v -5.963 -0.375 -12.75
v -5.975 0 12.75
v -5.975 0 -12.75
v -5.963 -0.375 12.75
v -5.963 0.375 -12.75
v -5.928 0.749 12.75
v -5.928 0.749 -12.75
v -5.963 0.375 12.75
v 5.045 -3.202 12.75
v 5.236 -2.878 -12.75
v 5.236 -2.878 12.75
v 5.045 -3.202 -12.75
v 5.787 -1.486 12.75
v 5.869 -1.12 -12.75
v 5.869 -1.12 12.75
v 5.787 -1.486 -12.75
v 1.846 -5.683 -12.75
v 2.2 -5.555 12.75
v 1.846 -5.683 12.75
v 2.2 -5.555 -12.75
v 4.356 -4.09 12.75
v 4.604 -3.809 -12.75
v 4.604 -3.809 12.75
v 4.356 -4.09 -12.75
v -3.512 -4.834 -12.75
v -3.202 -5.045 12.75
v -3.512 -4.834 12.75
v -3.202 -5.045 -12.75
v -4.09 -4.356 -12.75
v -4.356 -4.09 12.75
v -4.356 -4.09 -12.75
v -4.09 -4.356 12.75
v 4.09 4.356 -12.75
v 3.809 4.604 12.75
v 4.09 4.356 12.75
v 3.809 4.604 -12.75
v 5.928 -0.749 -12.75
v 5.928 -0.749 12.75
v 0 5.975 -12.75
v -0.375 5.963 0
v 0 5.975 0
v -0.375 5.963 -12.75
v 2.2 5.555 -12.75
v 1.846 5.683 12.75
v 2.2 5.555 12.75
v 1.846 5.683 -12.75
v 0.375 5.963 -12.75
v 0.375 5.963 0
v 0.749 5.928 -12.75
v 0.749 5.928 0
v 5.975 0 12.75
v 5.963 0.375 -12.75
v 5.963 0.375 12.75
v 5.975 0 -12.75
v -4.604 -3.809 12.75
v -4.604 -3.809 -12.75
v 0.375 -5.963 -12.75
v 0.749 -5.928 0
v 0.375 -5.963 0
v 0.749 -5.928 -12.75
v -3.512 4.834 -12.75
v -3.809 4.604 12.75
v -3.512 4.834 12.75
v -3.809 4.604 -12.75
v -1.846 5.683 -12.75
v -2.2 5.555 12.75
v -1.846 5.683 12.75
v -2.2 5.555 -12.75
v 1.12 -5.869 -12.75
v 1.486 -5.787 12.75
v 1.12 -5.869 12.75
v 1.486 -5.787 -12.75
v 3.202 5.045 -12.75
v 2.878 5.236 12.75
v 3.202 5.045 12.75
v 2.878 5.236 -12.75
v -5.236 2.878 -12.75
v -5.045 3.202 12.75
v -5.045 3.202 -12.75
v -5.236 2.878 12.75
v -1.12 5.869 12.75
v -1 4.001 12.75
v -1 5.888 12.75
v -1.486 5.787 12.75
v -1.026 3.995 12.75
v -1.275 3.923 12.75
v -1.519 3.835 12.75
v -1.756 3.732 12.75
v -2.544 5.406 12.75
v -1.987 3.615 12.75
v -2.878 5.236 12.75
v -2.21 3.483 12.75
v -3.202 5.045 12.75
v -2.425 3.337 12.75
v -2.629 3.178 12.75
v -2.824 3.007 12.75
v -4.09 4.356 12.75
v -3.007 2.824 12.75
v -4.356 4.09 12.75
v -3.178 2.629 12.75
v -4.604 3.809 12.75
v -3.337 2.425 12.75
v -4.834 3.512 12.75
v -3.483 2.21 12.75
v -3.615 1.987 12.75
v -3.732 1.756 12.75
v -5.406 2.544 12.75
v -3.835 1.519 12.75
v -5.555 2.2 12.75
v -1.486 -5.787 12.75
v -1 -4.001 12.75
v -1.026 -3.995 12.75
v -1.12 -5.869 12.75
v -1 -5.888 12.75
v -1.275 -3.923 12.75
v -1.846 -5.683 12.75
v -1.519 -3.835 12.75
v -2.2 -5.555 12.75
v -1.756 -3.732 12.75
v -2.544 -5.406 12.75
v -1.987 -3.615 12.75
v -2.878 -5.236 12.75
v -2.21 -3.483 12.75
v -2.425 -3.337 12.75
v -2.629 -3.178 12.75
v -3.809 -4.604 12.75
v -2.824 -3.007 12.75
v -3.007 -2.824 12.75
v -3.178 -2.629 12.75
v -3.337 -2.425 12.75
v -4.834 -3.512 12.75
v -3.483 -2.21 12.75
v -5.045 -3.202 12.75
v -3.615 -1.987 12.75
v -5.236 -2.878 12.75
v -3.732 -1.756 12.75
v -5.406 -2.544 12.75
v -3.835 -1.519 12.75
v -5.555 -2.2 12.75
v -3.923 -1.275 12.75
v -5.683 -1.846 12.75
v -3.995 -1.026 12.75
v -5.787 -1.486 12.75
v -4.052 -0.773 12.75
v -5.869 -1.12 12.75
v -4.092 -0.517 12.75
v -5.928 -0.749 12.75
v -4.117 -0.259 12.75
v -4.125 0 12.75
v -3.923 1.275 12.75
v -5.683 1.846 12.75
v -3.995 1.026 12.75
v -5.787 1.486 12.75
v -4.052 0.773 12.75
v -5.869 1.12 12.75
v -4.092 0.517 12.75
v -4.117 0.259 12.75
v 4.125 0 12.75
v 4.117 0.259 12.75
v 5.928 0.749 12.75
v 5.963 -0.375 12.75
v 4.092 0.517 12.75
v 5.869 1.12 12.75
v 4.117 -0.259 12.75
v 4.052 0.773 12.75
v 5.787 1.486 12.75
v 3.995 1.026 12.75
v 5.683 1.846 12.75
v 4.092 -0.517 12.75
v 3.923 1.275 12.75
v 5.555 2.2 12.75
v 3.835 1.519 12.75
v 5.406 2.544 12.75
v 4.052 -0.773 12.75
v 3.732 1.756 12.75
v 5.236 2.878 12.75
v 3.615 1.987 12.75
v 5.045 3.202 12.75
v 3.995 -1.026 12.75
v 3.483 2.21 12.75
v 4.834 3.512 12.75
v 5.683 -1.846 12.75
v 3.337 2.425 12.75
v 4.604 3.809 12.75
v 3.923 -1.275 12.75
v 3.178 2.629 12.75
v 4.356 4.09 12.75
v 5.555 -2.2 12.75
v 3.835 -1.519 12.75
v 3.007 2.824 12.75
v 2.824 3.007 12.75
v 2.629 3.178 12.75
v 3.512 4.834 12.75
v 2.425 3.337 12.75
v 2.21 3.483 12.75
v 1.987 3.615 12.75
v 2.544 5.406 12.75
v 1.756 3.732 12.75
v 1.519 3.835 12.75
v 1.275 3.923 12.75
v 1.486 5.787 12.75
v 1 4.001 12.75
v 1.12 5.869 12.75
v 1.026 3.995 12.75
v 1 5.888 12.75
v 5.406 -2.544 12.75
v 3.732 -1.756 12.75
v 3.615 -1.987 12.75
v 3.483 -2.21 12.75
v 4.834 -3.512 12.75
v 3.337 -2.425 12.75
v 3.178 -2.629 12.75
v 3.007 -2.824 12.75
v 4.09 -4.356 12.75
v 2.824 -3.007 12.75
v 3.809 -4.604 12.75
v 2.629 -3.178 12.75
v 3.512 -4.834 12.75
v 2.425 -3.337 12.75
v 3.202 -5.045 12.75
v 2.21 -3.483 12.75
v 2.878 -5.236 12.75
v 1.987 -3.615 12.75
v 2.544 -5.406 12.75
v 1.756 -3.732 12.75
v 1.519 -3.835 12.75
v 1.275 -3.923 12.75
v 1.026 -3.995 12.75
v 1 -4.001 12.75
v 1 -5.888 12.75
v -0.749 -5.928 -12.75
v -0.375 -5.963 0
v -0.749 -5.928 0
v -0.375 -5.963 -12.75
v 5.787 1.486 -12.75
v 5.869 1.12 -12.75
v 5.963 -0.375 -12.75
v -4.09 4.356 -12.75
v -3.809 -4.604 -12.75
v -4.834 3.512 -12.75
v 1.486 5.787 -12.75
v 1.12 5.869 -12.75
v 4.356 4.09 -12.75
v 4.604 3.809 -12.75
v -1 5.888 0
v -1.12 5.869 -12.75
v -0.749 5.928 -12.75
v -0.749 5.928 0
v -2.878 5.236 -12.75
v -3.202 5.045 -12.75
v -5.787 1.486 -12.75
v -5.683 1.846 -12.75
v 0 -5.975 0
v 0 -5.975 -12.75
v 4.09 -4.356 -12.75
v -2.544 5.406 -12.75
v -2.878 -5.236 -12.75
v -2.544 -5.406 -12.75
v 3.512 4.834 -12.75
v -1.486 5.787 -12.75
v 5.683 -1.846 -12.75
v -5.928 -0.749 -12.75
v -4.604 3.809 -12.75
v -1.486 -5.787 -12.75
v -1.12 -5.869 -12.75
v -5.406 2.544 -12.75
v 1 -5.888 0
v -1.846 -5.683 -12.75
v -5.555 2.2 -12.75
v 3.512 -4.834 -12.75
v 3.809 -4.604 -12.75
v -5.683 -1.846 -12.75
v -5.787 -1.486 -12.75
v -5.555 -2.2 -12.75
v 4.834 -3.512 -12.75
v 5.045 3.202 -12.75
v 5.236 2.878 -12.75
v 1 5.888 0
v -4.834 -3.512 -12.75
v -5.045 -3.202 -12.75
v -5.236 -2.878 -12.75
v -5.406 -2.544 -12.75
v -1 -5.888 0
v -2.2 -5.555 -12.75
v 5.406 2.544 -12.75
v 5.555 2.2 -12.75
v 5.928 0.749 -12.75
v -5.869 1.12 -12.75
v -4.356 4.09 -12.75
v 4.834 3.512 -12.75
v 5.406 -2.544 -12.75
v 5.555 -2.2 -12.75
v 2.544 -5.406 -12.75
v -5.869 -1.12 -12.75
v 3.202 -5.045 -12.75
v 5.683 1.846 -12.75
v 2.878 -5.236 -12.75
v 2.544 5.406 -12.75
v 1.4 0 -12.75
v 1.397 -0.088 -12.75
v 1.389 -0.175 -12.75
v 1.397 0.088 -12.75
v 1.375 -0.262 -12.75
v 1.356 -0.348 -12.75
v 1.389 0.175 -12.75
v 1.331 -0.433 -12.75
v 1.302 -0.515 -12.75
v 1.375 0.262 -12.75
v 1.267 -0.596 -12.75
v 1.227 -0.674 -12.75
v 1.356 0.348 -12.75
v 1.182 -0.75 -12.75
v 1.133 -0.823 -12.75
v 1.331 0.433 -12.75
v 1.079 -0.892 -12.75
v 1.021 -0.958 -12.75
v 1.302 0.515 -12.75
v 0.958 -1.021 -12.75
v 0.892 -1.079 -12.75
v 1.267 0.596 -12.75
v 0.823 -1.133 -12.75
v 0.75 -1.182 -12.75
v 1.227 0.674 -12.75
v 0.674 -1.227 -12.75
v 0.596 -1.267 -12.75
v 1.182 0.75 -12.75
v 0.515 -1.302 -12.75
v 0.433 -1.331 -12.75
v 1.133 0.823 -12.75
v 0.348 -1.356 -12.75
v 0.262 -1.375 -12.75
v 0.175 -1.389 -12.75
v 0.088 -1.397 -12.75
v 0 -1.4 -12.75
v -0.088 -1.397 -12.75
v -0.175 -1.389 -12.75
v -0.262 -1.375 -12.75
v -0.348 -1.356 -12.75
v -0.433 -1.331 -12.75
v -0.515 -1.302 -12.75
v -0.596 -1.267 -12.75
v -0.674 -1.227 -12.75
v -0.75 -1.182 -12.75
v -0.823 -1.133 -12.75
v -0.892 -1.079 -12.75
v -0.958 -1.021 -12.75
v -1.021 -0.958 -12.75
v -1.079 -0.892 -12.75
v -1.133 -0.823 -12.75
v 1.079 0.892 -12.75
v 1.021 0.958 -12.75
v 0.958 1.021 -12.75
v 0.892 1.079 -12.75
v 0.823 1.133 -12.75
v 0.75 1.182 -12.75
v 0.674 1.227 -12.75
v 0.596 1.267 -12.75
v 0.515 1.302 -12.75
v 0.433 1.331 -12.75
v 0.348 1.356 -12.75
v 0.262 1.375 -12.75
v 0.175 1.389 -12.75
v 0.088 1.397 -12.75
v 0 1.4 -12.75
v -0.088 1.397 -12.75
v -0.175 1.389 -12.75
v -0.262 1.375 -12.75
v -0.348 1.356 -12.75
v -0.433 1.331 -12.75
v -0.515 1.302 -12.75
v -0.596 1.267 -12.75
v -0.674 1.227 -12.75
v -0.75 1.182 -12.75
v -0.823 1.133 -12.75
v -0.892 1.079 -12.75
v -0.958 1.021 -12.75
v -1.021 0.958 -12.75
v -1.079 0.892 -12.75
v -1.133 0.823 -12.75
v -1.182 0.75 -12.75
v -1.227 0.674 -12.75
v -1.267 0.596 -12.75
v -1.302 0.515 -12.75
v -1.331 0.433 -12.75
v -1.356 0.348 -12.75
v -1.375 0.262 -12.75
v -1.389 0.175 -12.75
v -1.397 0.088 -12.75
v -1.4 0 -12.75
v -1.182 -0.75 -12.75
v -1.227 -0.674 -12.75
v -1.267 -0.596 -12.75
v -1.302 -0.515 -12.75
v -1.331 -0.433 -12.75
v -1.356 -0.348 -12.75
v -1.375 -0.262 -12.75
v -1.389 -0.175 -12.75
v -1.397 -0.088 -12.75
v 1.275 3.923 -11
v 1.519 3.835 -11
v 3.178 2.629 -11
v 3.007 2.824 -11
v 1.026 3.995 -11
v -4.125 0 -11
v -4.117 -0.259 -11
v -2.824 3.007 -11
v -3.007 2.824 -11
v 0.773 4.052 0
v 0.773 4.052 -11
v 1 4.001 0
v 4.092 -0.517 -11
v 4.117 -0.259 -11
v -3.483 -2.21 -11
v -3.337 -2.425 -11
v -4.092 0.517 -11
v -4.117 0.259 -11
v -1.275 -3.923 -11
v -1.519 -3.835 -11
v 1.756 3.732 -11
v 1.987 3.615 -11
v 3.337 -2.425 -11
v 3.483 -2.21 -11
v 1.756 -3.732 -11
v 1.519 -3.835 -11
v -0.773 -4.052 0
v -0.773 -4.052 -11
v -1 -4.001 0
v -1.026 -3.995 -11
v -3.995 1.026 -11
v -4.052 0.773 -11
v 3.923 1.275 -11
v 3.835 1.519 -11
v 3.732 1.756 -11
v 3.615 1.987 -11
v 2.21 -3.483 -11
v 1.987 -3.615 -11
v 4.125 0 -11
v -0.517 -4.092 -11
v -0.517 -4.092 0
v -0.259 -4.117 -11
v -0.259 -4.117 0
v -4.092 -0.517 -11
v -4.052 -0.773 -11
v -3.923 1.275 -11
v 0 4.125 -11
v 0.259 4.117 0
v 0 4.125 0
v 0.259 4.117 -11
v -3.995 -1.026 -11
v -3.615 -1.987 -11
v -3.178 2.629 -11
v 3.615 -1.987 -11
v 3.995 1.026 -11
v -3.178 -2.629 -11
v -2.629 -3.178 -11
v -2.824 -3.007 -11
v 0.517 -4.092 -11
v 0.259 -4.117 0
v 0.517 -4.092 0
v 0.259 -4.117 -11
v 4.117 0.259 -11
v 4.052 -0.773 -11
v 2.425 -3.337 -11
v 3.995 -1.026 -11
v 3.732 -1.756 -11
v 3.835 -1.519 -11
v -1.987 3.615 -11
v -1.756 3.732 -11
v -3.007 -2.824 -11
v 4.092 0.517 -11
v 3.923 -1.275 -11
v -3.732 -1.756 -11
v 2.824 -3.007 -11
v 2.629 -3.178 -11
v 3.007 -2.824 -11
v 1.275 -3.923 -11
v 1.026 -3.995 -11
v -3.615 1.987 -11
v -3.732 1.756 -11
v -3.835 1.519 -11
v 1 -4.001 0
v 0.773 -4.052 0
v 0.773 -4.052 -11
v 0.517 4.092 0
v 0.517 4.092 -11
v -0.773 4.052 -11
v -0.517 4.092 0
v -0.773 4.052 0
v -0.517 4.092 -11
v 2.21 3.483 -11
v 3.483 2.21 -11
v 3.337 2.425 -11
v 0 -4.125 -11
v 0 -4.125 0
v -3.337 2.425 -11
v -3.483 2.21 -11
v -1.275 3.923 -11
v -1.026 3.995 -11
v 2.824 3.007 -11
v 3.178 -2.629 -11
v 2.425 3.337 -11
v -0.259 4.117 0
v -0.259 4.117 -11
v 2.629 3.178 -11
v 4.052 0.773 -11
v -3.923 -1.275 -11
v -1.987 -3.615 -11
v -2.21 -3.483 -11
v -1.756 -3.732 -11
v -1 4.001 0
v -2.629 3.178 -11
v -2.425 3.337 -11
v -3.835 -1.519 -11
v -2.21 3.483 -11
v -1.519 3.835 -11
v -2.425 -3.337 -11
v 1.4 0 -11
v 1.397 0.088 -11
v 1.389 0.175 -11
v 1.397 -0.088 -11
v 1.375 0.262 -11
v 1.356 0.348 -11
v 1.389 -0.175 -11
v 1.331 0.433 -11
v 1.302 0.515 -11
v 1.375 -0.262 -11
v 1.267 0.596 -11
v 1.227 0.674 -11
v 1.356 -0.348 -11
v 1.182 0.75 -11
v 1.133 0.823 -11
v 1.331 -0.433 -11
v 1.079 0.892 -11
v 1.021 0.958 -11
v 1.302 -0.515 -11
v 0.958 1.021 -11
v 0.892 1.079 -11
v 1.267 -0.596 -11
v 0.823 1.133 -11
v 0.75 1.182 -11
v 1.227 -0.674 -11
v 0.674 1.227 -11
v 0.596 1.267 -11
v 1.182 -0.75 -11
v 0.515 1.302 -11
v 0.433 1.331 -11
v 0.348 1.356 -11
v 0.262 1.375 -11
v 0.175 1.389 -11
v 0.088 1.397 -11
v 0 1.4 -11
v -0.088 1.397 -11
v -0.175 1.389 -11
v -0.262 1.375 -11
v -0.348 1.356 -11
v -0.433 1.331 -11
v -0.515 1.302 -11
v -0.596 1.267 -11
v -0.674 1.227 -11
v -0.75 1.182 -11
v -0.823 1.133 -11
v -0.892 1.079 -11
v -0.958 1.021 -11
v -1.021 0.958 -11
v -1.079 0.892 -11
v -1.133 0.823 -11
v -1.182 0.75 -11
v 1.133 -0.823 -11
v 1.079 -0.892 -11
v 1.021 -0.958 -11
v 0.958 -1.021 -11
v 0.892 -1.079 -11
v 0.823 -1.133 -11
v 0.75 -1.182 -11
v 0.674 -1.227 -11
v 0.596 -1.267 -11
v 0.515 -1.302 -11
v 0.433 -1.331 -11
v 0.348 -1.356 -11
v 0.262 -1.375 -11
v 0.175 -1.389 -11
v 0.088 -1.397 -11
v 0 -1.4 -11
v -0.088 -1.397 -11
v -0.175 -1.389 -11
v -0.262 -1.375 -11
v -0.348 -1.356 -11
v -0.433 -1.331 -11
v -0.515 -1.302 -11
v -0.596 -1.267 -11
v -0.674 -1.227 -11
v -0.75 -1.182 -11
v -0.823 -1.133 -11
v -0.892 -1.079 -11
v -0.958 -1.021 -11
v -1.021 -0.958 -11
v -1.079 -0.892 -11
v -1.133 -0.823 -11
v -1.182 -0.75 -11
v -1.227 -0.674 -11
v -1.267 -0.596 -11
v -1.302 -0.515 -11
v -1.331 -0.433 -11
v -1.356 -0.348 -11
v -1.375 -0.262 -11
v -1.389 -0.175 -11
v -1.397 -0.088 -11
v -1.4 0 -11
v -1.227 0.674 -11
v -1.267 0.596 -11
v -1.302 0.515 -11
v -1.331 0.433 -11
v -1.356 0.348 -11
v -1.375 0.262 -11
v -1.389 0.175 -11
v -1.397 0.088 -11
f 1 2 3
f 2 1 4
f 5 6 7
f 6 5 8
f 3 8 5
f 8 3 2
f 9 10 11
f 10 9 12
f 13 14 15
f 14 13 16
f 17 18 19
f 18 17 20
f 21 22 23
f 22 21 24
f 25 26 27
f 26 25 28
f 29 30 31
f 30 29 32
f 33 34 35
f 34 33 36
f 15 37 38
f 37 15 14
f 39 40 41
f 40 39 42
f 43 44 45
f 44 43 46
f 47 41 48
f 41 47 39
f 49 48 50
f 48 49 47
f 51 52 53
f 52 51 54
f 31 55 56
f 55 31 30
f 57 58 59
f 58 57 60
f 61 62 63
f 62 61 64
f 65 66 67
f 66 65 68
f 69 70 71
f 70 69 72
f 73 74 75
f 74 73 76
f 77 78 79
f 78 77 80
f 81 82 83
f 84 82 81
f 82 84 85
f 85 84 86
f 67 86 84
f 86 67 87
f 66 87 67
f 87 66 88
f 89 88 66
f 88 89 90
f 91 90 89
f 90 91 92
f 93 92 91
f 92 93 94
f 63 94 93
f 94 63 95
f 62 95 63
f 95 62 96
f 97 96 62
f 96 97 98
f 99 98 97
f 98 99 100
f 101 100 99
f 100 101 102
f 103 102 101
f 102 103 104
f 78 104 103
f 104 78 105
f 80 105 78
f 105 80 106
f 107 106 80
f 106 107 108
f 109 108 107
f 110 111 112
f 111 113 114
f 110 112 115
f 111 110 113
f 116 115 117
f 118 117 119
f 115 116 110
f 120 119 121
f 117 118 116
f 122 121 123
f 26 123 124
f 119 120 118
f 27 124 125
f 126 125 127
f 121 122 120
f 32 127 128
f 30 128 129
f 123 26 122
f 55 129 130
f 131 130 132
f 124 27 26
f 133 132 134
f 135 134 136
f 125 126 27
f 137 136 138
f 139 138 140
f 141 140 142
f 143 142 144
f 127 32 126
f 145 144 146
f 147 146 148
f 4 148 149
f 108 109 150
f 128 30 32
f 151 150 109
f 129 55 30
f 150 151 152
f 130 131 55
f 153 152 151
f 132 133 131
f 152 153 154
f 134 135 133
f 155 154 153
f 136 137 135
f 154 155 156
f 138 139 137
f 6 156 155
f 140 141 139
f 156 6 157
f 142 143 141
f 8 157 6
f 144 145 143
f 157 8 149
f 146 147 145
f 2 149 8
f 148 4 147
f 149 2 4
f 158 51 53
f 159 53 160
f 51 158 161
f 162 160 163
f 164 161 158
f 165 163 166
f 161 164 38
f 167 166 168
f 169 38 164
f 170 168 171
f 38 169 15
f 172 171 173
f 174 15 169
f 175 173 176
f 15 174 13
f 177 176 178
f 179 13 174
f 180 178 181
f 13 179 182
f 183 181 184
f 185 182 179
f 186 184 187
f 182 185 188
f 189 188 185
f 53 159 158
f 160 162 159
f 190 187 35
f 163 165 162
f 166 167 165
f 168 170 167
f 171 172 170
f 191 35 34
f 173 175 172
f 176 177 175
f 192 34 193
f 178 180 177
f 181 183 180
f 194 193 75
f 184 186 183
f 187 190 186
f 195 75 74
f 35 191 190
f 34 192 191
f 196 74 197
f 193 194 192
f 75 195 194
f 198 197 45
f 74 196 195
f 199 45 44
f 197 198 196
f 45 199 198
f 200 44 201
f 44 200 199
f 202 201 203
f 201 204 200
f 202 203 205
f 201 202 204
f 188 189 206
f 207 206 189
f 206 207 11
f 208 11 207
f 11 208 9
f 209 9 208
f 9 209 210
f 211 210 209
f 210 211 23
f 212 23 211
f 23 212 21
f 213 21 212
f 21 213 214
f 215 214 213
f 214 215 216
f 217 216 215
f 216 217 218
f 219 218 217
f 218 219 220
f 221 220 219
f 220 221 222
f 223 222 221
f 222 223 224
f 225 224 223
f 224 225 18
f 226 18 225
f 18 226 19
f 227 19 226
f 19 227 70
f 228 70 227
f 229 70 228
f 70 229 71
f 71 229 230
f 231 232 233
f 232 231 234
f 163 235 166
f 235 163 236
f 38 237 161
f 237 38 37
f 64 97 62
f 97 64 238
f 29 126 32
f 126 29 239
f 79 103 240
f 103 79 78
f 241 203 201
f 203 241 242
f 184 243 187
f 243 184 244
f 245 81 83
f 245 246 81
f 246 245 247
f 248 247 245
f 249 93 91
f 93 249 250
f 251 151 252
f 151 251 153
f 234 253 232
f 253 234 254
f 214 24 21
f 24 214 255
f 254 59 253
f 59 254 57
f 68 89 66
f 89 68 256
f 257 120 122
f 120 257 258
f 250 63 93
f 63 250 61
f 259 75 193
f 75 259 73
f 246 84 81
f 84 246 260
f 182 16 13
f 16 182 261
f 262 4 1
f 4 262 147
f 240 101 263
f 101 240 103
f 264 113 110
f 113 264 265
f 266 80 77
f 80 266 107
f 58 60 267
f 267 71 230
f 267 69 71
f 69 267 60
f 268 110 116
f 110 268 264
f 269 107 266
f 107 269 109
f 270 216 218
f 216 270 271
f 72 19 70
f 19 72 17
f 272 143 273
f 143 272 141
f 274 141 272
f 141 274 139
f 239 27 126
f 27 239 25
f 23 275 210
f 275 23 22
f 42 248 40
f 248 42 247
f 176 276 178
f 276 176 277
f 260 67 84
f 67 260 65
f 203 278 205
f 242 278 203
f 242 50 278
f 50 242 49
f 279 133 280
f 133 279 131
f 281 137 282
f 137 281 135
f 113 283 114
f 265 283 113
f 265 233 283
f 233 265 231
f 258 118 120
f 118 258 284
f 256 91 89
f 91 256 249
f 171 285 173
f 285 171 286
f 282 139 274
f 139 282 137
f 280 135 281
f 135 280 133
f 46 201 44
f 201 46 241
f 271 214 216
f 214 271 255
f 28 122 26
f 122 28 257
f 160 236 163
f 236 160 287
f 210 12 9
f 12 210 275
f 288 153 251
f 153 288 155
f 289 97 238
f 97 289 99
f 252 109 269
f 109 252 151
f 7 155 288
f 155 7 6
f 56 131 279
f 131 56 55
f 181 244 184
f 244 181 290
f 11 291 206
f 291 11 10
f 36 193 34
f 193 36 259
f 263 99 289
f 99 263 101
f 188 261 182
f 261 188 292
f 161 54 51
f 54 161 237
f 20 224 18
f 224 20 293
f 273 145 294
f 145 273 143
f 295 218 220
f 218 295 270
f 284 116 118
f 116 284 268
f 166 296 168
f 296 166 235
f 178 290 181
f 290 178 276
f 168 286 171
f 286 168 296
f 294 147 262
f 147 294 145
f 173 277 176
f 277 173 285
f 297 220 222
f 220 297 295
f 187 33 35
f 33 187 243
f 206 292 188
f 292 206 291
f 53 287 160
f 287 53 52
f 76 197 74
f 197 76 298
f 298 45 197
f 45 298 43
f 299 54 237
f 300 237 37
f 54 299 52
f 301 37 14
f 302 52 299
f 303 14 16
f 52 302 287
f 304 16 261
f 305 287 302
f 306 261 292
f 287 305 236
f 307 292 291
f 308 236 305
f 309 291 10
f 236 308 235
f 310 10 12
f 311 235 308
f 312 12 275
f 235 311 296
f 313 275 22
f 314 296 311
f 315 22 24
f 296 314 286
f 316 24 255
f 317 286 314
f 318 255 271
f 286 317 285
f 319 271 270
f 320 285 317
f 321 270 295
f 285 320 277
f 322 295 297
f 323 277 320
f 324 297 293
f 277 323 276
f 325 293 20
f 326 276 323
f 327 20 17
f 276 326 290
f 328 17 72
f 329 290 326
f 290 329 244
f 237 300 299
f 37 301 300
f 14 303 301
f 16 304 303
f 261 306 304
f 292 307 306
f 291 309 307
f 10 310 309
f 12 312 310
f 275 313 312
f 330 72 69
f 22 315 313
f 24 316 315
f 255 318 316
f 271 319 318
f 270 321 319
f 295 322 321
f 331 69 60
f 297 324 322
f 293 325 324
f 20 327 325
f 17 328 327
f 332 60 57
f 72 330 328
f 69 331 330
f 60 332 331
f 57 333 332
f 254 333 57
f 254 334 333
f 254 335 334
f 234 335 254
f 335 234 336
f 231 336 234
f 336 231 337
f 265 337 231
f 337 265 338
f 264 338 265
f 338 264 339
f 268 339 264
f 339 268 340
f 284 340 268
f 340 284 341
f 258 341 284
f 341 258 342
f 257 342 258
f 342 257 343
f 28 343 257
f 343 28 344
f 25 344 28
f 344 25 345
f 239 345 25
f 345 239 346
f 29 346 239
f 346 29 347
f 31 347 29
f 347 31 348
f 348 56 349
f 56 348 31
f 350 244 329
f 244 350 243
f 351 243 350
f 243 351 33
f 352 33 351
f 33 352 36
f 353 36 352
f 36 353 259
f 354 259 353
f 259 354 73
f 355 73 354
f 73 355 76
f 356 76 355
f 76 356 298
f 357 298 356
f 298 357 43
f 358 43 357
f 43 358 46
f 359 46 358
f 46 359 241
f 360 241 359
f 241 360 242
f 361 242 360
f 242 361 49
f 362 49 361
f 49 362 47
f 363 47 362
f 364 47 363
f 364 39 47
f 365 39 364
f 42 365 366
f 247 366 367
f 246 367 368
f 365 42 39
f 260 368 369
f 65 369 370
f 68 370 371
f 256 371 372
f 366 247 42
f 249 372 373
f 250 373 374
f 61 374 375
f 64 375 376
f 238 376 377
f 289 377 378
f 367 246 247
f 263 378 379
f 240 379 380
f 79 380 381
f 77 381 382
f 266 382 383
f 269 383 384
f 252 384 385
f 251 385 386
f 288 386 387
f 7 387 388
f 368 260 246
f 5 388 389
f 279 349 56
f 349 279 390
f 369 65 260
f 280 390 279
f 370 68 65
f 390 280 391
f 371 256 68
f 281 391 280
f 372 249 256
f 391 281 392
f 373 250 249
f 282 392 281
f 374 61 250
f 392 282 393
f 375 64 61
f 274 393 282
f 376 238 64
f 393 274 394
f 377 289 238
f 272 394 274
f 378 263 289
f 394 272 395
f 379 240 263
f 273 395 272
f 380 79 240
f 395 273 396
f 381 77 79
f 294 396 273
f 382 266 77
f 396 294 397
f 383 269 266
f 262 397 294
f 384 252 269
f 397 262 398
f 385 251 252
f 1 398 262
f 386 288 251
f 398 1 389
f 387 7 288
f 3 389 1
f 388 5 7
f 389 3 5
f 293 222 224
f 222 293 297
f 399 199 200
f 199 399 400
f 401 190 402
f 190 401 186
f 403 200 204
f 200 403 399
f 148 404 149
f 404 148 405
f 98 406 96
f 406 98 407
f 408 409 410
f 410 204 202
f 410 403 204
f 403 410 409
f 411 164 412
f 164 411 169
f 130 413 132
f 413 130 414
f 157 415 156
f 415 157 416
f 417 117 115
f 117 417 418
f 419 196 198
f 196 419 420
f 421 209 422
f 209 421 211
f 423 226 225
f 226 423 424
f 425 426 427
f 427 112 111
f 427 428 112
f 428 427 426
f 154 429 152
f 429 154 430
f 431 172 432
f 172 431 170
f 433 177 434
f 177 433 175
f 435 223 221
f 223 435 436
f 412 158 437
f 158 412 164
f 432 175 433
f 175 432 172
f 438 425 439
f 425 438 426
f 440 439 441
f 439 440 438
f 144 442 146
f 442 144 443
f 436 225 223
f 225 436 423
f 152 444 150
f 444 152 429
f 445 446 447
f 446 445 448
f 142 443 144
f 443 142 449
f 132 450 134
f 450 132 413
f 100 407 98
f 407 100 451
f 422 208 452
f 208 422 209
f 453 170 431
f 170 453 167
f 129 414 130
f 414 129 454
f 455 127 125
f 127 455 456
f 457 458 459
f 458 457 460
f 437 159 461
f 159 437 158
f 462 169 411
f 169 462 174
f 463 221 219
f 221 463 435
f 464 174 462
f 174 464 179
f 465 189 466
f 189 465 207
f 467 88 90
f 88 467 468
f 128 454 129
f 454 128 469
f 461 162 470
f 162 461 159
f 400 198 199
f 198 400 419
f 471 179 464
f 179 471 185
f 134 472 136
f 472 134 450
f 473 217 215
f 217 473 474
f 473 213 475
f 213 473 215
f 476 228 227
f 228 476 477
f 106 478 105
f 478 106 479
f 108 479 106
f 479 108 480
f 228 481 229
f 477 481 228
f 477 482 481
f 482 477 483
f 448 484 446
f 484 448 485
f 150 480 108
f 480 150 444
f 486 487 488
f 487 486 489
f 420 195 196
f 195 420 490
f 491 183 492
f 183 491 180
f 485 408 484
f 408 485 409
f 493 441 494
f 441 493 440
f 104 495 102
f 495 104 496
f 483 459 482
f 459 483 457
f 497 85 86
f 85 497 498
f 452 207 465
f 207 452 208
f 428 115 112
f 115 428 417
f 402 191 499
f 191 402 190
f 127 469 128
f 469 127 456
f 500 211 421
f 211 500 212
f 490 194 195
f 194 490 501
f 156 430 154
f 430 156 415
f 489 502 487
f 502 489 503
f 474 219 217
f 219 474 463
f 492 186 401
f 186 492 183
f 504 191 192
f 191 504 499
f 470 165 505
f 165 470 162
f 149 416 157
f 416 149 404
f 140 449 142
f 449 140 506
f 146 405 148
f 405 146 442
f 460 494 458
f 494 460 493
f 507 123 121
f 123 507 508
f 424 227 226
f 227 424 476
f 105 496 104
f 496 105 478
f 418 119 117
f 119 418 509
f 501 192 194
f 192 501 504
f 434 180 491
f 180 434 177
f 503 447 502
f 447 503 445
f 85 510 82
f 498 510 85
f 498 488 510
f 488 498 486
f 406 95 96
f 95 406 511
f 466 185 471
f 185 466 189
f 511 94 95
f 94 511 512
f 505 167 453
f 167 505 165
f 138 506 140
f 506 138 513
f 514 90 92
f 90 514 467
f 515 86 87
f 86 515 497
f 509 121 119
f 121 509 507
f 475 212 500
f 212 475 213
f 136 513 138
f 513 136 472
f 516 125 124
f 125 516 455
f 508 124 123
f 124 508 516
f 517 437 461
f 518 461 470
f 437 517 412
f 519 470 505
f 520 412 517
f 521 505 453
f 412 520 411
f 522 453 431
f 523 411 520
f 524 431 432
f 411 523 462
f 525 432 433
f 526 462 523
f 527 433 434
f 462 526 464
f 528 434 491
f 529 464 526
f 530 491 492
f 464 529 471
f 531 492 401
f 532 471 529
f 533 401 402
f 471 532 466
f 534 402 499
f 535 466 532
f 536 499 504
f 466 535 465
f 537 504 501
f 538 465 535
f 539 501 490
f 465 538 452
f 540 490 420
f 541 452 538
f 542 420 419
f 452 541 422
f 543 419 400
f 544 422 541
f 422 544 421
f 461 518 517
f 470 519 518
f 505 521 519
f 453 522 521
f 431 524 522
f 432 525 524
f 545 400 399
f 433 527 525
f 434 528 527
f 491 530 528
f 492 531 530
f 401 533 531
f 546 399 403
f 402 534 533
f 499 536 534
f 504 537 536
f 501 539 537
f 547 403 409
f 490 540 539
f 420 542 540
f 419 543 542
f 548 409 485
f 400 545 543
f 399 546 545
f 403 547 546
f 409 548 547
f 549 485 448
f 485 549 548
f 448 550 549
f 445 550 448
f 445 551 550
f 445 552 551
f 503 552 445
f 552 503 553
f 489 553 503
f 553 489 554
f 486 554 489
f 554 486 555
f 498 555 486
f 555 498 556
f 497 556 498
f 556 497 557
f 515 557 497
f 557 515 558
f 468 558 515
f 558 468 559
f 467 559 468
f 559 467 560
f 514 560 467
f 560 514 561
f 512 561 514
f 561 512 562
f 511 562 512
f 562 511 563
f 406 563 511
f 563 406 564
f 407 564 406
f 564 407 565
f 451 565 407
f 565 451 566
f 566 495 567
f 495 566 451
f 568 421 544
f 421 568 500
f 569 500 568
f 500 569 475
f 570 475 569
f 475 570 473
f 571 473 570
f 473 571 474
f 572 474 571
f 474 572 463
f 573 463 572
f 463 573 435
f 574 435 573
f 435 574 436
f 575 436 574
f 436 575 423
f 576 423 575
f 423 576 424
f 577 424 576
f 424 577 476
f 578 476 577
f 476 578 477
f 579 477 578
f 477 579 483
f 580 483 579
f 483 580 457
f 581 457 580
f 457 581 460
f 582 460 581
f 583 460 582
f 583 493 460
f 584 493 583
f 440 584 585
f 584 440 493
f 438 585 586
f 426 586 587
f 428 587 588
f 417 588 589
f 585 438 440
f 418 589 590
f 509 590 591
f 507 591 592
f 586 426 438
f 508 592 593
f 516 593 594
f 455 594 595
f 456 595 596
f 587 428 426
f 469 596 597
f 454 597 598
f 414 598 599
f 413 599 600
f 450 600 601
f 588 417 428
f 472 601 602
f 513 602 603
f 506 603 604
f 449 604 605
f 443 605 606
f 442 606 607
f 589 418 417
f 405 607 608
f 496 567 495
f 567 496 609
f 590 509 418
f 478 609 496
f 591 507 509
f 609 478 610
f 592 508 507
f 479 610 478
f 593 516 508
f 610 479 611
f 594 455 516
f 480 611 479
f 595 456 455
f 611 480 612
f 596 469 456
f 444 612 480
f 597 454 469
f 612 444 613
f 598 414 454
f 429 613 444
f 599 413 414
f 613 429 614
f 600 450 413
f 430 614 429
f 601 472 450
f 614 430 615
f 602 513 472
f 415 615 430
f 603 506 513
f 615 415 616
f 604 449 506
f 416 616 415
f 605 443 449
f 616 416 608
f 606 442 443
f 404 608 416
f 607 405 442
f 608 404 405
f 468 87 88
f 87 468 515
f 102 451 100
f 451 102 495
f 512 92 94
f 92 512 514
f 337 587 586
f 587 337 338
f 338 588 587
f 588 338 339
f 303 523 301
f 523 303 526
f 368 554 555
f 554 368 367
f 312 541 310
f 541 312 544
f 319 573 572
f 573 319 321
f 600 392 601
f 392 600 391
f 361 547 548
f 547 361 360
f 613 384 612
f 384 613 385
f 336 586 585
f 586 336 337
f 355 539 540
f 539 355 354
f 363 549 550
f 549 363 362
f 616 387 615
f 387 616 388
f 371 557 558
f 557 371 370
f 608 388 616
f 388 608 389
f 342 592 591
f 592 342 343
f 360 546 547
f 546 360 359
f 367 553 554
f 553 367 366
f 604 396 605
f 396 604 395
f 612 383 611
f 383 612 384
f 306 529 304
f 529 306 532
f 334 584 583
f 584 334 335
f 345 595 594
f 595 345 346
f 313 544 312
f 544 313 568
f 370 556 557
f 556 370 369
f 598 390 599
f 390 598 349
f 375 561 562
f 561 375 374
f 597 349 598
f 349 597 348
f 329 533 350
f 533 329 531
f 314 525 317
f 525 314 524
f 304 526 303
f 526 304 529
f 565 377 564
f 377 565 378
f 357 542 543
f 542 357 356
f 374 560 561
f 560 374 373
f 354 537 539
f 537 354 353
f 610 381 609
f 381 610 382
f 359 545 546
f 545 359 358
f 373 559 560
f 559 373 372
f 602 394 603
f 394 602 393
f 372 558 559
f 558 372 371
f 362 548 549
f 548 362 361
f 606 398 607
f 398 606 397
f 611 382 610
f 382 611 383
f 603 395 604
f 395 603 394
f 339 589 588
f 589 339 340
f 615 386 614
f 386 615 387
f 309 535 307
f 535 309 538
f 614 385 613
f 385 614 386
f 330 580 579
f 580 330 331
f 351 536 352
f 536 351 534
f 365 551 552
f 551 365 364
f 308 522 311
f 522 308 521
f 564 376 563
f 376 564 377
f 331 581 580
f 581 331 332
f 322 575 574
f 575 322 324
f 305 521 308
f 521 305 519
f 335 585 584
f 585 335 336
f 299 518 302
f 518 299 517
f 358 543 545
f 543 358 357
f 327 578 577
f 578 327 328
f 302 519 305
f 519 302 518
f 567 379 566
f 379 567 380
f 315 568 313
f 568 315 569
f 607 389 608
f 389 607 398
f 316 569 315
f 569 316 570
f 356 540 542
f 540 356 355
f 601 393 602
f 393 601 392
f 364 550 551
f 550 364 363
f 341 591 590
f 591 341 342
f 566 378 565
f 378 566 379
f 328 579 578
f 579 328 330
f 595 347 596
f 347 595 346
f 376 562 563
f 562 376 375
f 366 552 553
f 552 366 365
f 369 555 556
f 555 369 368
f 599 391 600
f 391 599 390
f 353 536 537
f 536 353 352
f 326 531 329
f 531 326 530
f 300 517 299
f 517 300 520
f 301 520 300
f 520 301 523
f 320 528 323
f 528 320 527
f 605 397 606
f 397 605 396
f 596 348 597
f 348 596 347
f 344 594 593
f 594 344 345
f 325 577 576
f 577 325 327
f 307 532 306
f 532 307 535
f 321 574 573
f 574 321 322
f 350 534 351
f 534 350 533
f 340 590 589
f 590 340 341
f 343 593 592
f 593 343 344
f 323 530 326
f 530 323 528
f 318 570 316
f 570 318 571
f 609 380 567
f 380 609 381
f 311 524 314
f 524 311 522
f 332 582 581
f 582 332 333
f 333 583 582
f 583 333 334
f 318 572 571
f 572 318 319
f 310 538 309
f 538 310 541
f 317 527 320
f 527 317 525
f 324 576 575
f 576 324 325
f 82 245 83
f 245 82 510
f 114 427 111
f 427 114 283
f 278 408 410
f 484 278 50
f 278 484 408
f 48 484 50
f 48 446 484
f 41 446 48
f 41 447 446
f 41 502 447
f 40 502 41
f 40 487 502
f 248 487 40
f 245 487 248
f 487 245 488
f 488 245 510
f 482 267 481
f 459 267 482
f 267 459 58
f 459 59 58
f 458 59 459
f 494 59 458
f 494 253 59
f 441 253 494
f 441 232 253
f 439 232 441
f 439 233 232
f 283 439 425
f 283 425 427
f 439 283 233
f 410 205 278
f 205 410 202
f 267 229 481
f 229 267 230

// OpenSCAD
// file: ../../../shared_helper.scad
// Shared Helper variables and modules

// Variables
quality_value = 100;
$fn = quality_value;

// Screw Holes
m2_hole_diameter = 1.85; // 1.95;
m2_loose_diameter = 2.50;
m2_counter_sink_diameter = 3.80;
m2_counter_sink_length = 2.00;
m2_hole_offset = m2_hole_diameter / 2.0;
m2_hole_height = 100.00;
m2_nut_outer_width = 3.90;
m2_nut_outer_height = 4.40;
m2_nut_outer_depth = 1.50;
// M2_Counter_Sink_Depth

m3_hole_diameter = 2.9; // 2.8
m3_hole_offset = m3_hole_diameter / 2.0;
m3_hole_height = 100.00;
m3_head_diameter = 6.2;
m3_head_depth = 3.0; // 2.5??, 3.0

m4_hole_diameter = 3.85; // 3.90
m4_hole_offset = m4_hole_diameter / 2.0;
m4_hole_height = 100.00;
m4_head_diameter = 7.55;
m4_head_depth = 3.0; // 2.5??, 3.0

// Tolerances
hole_tight_tolerance = 0.05;
hole_loose_tolerance = 0.20;

// Springs
spring_diameter = 5.45;
spring_length = 35.00;

// Nails
brass_nail_diameter = 2.4; // 2.00; // 1.95 at the beginning it tapers
brass_nail_length = 29.54;
brass_nail_head_diameter = 3.20; // 3.00; // oval 2.84 - 3.1 mm
brass_nail_head_depth = 1.80; //1.00; // 1.80; // 2.00;

// General Variables
v_wheel_hole_diameter = 5.20;
v_wheel_offset = (v_wheel_hole_diameter / 2.0) + 2.0;

// Hot-End Holes
stand_off_hole_diameter = m3_hole_diameter;
stand_off_width_distance = 11.60 + stand_off_hole_diameter;

// Magnets
// Small Magnet (Neo)
small_magnet_height = 2.00; // ±2.00 1.97
small_magnet_diameter = 3.00; // ±3.00 // 2.98

// Medium Magnet (Neo)
medium_magnet_height = 2.96; // ±3.00
medium_magnet_diameter = 5.00;

// Large Magnet (ferrite)
large_magnet_height = 2.98; // ±3.00
large_magnet_diameter = 9.79; // ±10.00

// Switches
// D2F Switch
d2f_length = 12.88; // ±12.70
d2f_width = 5.84; // ±5.70
d2f_depth = 6.20; // ±7.00 (5 + 2) ... ±6.50
d2f_pins = 9.00 - 6.50;
d2f_plunger_length = 2.64;
d2f_plunger_width = 0.97; // ±1.00
d2f_plunger_depth = 0.39; // ±0.50
d2f_mount_hole_position = 2.10;
d2f_hole_position_from_centre = 2.85;
d2f_pin_pre_travel = 0.50;
d2f_mount_hole_shift = 4.40 + m2_hole_offset + m2_hole_offset;
d2f_switch_base = 0.2 + 0.7 + 1.50 + 0.55 - 1.0;
d2f_switch_hole_hight = 22.00;
d2f_extra_tolerance_for_switch_holes = 0.12;

// 10t85 Switch
10t85_length = 20.04; // ±19.90
10t85_width = 6.34; // ±6.40
10t85_depth = 10.64; // ±10.70
10t85_plunger_length = 3.28; // ±4.00
10t85_plunger_width = 1.96;
10t85_plunger_depth = 1.30;

// Creality Endstop Board, 2208 V2.0
// creality_endstop_hole_diameter = m3_hole_diameter + hole_loose_tolerance; // Hole is M3 sized but meant for a loose M2
creality_endstop_hole_diameter = m2_hole_diameter + hole_tight_tolerance;
creality_endstop_hole_offset = 15.00;
creality_endstop_board_height = 20.30;
creality_endstop_plug_height_extension = 2.00;
creality_endstop_board_width = 20.20;
creality_endstop_board_thickness = 1.30;
creality_endstop_board_pins_thickness = 3.20 - creality_endstop_board_thickness;
creality_endstop_board_switch_thickness = 8.50 - creality_endstop_board_thickness;
creality_endstop_board_back_space = 2.00; // Taken from the rail mount bracket
creality_endstop_board_back_height = 14.90;
creality_endstop_board_back_width = 16.80;
creality_endstop_back_thickness = 3.30;
creality_endstop_back_hole_wall_spacing = 1.50; //3.00;

// Small Tactile Switch
small_tactile_switch_length = 6.21;
small_tactile_switch_width = 6.17;
small_tactile_switch_depth = 3.18;
small_tactile_switch_plunger_diameter = 3.40;
small_tactile_switch_plunger_depth = 1.40;

// Large Tactile Switch
large_tactile_switch_length = 12.03;
large_tactile_switch_width = 11.95;
large_tactile_switch_depth = 3.12;
large_tactile_switch_plunger_length = 3.75;
large_tactile_switch_plunger_width = 3.70;
large_tactile_switch_plunger_depth = 3.94;

// Button
button_topper_top_diameter = 11.65;
button_topper_bottom_diameter = 12.96;
button_topper_depth = 5.64;
button_topper_bottom_depth = 4.38;

// Belts
// GT2

// Modules
// Creality Mounting Holes
module CrealityCounterSunkHotEndMountingHoles(total_casing_depth, casing_top_extension) {
  // Mounting holes with countersinking - horizontal, through-holes, properly positioned
  cylinder(d=m3_hole_diameter, h=total_casing_depth + 2.00, center=true);
  cylinder(d=m3_hole_diameter, h=total_casing_depth + 2.00, center=true);

  translate([stand_off_width_distance, 0, 0]) {
    cylinder(d=m3_hole_diameter, h=total_casing_depth + 2.00, center=true);
    cylinder(d=m3_head_diameter + hole_loose_tolerance, h=4 + m3_head_depth + 6 + 1.8 + casing_top_extension);
  }
}

module CrealityHotEndMountingHoles(total_casing_depth) {
  cylinder(d=m3_hole_diameter, h=total_casing_depth + 2.00, center=true);

  translate([stand_off_width_distance, 0, 0]) {
    cylinder(d=m3_hole_diameter, h=total_casing_depth + 2.00, center=true);
  }
}

module CrealityEndstopMountHoles(height, include_back_nut_cutout) {
  cylinder(d=creality_endstop_hole_diameter, h=height, center=true);

  translate([creality_endstop_hole_offset, 0, 0]) {
    cylinder(d=creality_endstop_hole_diameter, h=height, center=true);
  }

  if (include_back_nut_cutout) {
    back_depth = m2_nut_outer_depth;

    translate([-2.0, -2.0, 0]) {
      cube([m2_nut_outer_width, m2_nut_outer_height, back_depth]);

      translate([creality_endstop_hole_offset, 0, 0]) {
        cube([m2_nut_outer_width, m2_nut_outer_height, back_depth]);
      }
    }
  }
}

module CrealityEndstopBackSpace(base_cutout_extension) {
  // Smaller gap between screw holes
  translate([creality_endstop_hole_diameter + creality_endstop_back_hole_wall_spacing, 0.0, 0.0]) {
    cube([creality_endstop_board_back_width - 2 * (creality_endstop_hole_diameter + creality_endstop_back_hole_wall_spacing), base_cutout_extension, creality_endstop_back_thickness + 1.0]);
  }

  // Top gap part
  translate([0.0, base_cutout_extension, 0]) {
    cube([creality_endstop_board_back_width, (creality_endstop_board_back_height + base_cutout_extension), creality_endstop_back_thickness + 1.0]);
  }
}

// D2F Switch Mounting
module D2F_Switch_Space() { // Should be used as a negative / difference space
  // D2F Switch Space
  // switch_base = 0.2 + 0.7 + 1.50 + 0.55;
  // switch_base = 0.2 + 0.7 + 1.50 + 0.55 - 1.0;
  switch_base = d2f_switch_base;

  // cube([d2f_depth, d2f_width + 1.05 + 0.75 - 0.95, d2f_length + casing_top_edge_buffer]); // 1.05
  cube([d2f_length, (d2f_width + 2.00) + d2f_pins, d2f_depth]);
}

module D2F_Switch_Mount_Holes() {
  rotate([0, 0, 90]) {
    translate([0.0, d2f_hole_position_from_centre, 0.0]) {
      cylinder(d=m2_hole_diameter + hole_tight_tolerance + (d2f_extra_tolerance_for_switch_holes * 3), h=d2f_switch_hole_hight);
    }

    translate([0.0, -(d2f_hole_position_from_centre + m2_hole_offset), 0.0]) {
      cylinder(d=m2_hole_diameter + hole_tight_tolerance + (d2f_extra_tolerance_for_switch_holes * 3), h=d2f_switch_hole_hight);
    }
  }
}
// main file
// 8mm to 12mm Rod Sleeve Adapter

// This sleeve converts an 8mm linear stainless rod to 12mm mounting holes
// Uses shared_helper.scad for tolerances and quality settings

include <../../../shared_helper.scad>;

revision = 1.6;

// Rod dimensions
inner_rod_diameter = 8.0;
outer_sleeve_diameter = 12.0;
sleeve_length = 25.5; //30.0;  // Adjust as needed // +1.5

// Tolerances
// inner_tolerance = (2 * hole_tight_tolerance) + hole_loose_tolerance;    // Tight perfect fit for the 8mm rod
inner_tolerance = hole_tight_tolerance + hole_loose_tolerance;    // Tight fit for the 8mm rod
outer_tolerance = hole_tight_tolerance;  // Slightly looser fit for the 12mm mounting holes

// Gap parameters for installation
gap_width = 2.0;  // Width of the gap to allow squeezing

// Create the sleeve
rotate([0, 180, 0]) {
  difference() {
    // Outer cylinder
    cylinder(d=outer_sleeve_diameter - outer_tolerance, h=sleeve_length, center=true);

    // Inner hole for 8mm rod
    rotate([0, 0, 180]) {
      translate([0, 0, -sleeve_length + 12.5 - 0.5 -1.0])
      cylinder(d=inner_rod_diameter + inner_tolerance, h=sleeve_length);
    }

    // Small hole to push rod out
    cylinder(d=m3_hole_diameter - 0.1, h=sleeve_length + 1.0, center=true);

    // Gap to allow squeezing for installation
    translate([0, 0, -sleeve_length/2 - 0.5])
    cube([gap_width, outer_sleeve_diameter + 1, sleeve_length + 1], center=true);
  }
}
